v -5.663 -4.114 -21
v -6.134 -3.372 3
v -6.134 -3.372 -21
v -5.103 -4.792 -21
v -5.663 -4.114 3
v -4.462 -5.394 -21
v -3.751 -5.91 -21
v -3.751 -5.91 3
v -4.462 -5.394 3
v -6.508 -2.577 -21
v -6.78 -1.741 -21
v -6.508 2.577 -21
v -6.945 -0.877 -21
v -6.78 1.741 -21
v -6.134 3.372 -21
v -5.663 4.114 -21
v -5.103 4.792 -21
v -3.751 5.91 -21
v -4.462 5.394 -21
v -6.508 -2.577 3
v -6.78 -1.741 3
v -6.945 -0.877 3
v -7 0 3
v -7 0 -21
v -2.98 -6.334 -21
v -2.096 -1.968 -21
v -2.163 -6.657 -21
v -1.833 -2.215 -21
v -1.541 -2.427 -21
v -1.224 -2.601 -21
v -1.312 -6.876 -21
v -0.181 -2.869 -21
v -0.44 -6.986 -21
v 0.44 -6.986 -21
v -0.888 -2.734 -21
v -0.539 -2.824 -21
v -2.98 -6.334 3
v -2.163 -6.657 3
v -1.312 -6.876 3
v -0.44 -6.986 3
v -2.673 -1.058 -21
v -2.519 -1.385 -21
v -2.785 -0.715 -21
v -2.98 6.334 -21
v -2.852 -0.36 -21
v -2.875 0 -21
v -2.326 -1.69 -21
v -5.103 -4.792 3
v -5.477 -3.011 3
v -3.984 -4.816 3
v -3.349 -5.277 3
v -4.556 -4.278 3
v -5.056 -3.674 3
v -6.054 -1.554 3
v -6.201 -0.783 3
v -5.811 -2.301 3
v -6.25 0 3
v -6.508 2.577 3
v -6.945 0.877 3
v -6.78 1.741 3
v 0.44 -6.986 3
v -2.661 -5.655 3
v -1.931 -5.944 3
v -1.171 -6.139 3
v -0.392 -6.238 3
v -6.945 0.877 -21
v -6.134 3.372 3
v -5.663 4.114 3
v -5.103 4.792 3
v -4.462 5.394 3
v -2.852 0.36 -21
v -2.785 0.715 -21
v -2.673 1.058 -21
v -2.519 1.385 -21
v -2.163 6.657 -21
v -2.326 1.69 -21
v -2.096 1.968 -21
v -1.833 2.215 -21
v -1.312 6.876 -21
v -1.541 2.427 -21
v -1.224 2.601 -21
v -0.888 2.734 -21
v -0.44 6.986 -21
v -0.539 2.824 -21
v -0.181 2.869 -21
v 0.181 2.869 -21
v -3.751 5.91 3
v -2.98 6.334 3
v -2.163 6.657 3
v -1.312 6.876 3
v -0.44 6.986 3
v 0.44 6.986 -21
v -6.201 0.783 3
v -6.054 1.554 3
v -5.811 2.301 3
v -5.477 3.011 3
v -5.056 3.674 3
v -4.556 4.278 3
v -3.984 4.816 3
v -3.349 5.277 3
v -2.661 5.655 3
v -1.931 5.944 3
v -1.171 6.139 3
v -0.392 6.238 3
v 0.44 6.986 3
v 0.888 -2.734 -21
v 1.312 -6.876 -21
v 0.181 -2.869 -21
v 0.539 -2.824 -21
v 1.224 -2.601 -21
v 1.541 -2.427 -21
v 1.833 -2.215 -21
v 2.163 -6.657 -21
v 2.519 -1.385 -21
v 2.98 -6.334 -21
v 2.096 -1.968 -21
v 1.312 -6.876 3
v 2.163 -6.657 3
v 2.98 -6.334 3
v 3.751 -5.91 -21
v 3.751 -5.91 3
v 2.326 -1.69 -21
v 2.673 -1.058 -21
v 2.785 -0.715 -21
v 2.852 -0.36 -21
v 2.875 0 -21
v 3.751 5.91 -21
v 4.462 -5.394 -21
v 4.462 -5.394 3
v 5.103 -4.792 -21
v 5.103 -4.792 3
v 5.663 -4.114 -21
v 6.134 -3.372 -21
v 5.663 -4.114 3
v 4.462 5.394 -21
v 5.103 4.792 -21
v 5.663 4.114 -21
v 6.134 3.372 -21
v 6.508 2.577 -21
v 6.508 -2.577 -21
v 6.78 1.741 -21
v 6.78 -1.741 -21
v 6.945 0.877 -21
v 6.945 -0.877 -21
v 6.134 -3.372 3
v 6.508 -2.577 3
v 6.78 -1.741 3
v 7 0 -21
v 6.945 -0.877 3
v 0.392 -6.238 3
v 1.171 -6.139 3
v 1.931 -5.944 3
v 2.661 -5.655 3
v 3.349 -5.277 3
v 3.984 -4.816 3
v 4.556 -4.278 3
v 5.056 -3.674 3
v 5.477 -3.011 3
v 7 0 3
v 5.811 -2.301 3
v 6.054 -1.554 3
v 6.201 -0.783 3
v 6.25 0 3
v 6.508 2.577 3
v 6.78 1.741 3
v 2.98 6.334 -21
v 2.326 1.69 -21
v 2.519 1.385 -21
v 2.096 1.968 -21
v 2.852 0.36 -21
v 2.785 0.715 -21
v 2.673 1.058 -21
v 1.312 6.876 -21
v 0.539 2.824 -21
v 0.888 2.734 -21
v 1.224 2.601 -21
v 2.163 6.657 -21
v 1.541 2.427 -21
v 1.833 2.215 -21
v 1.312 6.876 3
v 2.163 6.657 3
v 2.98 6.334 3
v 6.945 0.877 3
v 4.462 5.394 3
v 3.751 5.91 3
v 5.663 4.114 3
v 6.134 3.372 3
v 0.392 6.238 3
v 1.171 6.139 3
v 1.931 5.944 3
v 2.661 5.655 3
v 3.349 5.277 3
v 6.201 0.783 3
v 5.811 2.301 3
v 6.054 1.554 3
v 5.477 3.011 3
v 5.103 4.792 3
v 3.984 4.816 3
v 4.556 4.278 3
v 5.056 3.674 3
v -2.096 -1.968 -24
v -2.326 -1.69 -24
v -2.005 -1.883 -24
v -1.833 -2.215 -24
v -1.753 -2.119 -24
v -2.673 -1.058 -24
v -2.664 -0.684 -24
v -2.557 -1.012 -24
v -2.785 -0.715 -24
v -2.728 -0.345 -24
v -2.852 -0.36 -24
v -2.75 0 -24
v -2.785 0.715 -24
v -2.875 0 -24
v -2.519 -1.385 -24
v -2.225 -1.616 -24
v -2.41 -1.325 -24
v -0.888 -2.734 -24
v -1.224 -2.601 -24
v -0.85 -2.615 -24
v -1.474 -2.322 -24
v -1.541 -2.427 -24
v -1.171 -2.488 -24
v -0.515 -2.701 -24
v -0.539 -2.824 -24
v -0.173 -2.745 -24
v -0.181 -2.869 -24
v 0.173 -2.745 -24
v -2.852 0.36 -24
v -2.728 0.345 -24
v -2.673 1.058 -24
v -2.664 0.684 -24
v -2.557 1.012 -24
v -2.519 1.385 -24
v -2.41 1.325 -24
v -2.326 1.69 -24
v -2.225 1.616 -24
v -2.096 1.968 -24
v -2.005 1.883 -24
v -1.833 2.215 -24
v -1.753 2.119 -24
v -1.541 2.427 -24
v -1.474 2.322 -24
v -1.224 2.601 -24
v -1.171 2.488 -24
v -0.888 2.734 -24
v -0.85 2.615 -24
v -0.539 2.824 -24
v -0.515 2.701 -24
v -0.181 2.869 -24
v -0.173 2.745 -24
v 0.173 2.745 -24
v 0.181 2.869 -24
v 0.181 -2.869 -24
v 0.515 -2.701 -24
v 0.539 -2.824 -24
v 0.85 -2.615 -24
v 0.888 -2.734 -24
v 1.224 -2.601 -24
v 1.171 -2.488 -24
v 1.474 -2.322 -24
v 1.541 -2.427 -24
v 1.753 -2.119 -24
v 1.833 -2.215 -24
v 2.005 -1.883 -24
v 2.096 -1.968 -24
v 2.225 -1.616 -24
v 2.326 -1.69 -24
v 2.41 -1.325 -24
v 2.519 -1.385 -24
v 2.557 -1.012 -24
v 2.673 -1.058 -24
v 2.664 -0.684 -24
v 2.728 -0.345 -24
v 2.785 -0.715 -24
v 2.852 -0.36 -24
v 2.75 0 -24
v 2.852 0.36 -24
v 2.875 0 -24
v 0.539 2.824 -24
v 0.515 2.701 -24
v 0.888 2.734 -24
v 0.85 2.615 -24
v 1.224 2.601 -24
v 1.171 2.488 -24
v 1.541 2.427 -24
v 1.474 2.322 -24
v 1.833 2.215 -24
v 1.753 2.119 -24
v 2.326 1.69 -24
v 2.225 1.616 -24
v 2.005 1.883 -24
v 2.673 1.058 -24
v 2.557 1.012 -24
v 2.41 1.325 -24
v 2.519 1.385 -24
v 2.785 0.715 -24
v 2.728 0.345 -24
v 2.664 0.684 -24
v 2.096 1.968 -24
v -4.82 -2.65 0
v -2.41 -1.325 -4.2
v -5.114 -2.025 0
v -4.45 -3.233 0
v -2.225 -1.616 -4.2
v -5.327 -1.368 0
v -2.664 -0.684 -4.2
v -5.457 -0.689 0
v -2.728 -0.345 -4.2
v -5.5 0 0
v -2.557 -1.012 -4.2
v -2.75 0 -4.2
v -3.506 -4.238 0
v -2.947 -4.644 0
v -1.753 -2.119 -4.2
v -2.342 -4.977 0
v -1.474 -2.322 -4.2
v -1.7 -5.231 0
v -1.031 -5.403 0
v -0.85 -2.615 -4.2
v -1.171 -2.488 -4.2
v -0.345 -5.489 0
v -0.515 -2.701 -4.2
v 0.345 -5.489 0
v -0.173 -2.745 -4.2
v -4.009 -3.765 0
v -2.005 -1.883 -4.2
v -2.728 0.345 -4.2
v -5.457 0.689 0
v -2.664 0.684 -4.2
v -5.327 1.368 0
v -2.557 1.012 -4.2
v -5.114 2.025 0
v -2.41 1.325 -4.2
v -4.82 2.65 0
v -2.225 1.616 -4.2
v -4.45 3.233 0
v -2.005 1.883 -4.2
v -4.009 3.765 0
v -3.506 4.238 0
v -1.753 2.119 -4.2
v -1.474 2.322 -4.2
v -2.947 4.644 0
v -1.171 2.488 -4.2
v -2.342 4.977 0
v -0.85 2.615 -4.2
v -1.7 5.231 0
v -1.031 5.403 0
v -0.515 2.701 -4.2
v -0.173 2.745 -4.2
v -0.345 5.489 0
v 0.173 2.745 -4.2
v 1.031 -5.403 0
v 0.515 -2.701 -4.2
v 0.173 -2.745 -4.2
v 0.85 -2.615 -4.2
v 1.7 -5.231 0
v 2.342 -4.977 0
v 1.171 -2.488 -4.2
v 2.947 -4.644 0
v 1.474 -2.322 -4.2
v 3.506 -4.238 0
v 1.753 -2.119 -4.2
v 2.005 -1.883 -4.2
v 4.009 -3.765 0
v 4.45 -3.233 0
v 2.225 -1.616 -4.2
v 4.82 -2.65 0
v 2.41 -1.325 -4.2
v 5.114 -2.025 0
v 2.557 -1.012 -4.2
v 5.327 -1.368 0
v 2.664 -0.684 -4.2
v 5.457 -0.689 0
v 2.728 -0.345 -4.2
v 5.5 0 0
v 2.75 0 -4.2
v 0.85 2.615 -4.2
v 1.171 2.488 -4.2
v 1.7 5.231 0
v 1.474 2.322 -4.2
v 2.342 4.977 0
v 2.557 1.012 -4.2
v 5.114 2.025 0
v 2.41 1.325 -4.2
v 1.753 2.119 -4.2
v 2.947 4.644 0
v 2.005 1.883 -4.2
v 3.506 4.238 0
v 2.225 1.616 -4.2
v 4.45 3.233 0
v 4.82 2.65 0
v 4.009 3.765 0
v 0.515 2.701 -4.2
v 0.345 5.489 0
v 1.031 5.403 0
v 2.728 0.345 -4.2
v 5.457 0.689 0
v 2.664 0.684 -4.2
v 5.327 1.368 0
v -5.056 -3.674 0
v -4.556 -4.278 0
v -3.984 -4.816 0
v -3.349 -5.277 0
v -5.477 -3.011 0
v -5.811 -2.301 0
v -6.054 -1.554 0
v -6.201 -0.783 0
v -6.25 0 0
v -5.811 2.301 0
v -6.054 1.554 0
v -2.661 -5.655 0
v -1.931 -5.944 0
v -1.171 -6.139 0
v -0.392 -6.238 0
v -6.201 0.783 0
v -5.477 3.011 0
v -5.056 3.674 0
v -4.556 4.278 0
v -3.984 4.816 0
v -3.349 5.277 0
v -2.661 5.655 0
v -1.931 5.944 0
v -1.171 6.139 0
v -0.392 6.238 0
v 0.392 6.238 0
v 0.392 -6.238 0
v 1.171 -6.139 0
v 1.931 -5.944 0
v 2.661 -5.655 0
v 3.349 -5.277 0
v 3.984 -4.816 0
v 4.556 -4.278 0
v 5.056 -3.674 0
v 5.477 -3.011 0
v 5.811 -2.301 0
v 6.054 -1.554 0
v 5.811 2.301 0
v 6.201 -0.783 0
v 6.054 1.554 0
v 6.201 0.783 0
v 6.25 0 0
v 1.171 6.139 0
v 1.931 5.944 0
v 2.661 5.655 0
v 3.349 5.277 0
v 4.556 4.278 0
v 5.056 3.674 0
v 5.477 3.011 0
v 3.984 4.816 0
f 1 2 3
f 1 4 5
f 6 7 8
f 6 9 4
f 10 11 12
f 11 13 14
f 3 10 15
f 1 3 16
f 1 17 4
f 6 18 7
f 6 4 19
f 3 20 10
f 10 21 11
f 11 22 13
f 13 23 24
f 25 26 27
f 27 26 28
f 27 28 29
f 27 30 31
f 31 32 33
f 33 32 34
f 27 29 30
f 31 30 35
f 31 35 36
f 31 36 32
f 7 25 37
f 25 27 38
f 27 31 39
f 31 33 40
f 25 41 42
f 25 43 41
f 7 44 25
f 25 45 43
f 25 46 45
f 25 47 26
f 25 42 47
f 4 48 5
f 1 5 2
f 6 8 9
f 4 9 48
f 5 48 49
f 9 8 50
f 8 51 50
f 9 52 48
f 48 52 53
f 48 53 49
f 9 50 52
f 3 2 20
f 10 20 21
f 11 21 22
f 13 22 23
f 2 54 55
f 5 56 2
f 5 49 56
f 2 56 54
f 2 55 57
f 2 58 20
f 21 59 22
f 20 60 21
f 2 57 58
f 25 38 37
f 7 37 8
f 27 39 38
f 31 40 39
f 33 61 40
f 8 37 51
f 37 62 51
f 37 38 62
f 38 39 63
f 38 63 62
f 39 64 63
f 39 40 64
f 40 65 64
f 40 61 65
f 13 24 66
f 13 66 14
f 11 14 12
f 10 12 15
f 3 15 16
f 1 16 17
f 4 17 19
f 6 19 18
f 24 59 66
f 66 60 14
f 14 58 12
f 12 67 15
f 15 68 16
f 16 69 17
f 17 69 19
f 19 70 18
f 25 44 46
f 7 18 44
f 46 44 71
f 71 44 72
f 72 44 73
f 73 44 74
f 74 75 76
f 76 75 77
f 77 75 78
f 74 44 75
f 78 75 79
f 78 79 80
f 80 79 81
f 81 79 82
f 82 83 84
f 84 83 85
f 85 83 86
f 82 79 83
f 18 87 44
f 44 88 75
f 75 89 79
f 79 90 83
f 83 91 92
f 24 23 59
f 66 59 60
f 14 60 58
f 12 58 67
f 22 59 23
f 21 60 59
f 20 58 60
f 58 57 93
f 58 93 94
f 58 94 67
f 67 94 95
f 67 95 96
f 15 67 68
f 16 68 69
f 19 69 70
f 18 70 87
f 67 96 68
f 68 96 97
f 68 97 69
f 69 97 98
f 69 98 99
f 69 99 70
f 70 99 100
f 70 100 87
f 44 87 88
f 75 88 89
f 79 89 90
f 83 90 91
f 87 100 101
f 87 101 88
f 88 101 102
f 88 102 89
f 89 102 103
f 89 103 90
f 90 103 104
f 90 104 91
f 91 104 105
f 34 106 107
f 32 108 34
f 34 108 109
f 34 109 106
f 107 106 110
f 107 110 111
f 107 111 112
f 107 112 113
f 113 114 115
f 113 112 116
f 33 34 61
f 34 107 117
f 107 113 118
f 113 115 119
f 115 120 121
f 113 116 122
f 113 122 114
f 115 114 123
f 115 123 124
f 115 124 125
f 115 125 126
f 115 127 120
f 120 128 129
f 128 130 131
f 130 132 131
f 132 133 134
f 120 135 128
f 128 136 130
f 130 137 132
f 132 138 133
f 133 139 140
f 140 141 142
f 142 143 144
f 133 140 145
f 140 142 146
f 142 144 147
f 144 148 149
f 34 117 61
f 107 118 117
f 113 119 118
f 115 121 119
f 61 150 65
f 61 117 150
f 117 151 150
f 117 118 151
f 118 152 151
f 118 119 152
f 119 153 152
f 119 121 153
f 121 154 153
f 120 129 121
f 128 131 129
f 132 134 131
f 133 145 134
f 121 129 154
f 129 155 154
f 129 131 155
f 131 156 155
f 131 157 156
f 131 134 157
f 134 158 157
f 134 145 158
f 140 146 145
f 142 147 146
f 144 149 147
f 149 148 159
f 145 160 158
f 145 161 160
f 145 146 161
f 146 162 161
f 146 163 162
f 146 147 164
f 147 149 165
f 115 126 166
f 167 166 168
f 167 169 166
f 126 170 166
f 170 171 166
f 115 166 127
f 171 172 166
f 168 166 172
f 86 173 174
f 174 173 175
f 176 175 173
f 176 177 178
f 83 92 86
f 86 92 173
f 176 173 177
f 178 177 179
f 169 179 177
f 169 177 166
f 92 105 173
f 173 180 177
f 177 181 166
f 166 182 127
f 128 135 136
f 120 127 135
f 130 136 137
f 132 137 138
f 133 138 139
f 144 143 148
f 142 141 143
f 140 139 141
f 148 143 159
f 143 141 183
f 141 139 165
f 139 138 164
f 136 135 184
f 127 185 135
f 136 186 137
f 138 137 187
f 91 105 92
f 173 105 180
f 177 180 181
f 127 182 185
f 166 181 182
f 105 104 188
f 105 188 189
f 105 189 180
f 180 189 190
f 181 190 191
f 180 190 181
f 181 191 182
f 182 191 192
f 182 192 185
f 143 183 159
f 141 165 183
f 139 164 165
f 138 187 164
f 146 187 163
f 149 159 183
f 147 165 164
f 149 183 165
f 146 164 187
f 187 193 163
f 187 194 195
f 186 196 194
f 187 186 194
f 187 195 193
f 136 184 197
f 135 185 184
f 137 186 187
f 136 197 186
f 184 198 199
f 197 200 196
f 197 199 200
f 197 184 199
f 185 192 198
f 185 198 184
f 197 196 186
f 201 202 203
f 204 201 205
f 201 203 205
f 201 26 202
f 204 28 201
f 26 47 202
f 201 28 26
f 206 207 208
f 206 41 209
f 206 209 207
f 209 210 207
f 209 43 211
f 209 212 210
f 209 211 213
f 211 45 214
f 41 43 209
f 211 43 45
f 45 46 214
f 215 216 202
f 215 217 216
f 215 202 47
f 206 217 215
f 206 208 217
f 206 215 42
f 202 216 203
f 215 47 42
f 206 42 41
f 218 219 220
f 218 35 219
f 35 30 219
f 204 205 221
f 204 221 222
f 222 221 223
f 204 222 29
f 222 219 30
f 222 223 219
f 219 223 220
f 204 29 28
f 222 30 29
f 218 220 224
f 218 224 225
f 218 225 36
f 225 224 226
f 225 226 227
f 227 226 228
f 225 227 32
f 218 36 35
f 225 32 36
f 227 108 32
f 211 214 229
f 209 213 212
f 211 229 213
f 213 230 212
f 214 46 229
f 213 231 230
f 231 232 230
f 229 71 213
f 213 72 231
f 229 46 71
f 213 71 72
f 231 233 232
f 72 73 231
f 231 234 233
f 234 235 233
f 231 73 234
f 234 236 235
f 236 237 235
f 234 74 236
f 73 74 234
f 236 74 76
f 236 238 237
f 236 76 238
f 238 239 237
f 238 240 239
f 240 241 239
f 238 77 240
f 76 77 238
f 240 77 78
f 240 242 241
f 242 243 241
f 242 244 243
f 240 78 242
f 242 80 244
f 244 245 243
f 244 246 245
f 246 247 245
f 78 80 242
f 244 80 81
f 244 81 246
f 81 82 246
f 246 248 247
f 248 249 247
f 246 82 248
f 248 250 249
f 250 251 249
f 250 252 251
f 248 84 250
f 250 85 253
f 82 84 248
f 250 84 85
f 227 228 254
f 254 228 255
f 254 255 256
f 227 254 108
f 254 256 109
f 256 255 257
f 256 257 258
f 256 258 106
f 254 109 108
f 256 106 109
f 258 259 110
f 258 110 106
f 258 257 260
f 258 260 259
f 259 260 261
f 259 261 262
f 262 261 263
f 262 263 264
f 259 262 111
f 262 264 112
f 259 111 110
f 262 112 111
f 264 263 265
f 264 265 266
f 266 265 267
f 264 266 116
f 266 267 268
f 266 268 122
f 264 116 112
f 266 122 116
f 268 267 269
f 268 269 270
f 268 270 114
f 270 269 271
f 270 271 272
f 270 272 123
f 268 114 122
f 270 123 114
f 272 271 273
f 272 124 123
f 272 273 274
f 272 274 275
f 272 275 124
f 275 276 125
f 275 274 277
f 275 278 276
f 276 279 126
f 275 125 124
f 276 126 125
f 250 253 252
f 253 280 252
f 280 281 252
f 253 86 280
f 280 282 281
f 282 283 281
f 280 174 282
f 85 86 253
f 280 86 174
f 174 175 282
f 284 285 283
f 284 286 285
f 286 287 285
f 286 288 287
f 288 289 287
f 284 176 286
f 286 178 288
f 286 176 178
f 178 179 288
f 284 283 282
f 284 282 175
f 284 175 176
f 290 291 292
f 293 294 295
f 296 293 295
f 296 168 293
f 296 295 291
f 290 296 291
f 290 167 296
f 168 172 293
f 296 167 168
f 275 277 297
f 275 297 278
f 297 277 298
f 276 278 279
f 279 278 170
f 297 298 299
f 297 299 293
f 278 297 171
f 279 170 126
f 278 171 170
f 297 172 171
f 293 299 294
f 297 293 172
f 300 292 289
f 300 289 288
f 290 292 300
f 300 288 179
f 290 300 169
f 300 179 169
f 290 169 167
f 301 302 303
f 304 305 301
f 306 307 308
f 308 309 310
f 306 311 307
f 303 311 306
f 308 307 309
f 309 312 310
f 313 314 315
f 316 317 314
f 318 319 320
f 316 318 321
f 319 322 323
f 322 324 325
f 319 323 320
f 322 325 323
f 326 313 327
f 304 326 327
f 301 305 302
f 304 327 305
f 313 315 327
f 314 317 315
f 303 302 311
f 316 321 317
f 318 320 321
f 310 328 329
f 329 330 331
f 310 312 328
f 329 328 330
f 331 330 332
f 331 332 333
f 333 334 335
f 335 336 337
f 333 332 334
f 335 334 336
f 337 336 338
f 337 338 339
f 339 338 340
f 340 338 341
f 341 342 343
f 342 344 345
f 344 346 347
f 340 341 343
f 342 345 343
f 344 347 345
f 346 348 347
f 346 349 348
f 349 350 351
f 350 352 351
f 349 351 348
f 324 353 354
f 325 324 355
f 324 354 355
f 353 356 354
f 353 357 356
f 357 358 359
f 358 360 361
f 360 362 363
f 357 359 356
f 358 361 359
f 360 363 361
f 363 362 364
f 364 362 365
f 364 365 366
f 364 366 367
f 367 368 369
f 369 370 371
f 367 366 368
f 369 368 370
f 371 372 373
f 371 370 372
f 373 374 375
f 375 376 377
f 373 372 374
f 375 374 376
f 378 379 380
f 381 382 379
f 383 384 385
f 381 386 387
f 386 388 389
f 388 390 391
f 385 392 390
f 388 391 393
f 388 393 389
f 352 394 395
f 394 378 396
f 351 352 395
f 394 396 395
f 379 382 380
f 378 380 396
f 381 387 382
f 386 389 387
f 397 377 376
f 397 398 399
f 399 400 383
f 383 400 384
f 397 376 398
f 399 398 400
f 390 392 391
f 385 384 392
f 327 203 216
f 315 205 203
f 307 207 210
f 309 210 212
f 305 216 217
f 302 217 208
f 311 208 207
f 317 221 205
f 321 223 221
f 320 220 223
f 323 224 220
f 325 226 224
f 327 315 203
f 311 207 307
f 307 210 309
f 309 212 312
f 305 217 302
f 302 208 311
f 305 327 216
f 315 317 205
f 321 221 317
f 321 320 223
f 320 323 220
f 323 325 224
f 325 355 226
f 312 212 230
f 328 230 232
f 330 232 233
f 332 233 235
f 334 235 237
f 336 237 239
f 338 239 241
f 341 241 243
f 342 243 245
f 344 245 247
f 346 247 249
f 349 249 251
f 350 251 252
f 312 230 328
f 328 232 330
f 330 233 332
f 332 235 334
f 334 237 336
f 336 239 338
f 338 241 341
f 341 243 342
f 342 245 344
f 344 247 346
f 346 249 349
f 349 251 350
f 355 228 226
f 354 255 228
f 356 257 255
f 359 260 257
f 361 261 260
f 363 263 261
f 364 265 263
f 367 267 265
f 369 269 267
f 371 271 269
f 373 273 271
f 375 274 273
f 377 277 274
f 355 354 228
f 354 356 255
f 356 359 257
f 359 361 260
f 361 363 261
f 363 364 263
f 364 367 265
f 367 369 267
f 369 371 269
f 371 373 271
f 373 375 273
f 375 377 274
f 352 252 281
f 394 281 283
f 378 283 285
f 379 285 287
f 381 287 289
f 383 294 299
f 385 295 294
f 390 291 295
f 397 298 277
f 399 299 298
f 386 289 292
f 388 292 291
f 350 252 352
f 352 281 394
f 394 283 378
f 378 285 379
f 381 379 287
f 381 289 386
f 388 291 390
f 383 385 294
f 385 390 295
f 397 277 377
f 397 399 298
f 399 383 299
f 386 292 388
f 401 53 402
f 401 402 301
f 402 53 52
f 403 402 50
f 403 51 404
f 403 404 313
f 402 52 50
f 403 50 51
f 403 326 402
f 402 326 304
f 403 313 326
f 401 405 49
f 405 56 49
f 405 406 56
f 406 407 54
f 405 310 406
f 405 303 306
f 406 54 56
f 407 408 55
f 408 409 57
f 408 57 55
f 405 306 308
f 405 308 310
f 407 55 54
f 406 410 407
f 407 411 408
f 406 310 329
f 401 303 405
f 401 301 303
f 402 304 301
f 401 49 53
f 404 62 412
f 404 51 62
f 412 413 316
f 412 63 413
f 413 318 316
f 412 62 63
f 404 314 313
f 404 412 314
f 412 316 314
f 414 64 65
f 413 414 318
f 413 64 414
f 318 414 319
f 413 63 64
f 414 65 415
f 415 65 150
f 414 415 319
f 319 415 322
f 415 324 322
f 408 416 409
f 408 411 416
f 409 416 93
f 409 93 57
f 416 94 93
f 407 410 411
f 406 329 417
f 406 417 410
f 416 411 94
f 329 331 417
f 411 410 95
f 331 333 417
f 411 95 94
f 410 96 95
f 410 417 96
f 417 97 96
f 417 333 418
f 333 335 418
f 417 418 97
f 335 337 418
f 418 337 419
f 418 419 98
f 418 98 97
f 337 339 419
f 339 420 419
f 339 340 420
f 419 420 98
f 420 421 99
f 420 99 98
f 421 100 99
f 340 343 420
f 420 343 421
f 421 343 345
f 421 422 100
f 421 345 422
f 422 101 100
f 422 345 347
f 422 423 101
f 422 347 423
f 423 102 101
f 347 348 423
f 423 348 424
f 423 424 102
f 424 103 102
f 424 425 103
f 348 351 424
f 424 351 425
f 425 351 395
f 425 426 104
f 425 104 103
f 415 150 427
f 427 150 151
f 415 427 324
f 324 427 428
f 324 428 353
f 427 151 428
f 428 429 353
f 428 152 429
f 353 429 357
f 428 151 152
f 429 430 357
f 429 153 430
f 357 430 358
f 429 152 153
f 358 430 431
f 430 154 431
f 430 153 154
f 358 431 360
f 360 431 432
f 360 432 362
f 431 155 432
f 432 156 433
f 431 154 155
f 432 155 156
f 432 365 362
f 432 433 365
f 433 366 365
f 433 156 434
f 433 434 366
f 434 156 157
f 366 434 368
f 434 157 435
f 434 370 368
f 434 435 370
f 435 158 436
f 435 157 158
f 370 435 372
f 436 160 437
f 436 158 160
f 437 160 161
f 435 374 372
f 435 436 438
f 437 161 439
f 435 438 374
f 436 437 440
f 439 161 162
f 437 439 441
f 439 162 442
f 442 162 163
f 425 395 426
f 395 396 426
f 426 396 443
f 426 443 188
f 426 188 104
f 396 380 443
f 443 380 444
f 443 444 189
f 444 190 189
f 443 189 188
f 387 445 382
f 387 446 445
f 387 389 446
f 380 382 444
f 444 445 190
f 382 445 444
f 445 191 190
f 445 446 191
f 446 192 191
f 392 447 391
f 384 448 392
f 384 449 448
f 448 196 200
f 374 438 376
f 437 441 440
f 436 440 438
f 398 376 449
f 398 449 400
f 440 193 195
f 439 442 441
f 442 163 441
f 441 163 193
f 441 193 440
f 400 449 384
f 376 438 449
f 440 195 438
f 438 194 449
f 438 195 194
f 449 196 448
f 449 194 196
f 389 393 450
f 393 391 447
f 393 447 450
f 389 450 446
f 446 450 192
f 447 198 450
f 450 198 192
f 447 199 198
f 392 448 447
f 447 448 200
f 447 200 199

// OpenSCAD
$fn = 50;

difference() {
	union() {
		translate(v = [0, 0, -21.0]) {
			cylinder(h = 24, r = 7.0);
		}
		#translate(v = [0, 0, -24.0]) {
			cylinder(h = 24, r = 2.875);
		}
	}
	union() {
		translate(v = [0, 0, 0]) {
			rotate(a = [0, 0, 0]) {
				difference() {
					union() {
						translate(v = [0, 0, -24.0]) {
							cylinder(h = 24, r = 2.25);
						}
						translate(v = [0, 0, -4.2]) {
							cylinder(h = 4.2, r1 = 2.75, r2 = 5.5);
						}
						translate(v = [0, 0, -24.0]) {
							cylinder(h = 24, r = 2.75);
						}
						translate(v = [0, 0, -24.0]) {
							cylinder(h = 24, r = 2.25);
						}
					}
					union();
				}
			}
		}
		#cylinder(h = 3, r = 6.25);
	}
}
